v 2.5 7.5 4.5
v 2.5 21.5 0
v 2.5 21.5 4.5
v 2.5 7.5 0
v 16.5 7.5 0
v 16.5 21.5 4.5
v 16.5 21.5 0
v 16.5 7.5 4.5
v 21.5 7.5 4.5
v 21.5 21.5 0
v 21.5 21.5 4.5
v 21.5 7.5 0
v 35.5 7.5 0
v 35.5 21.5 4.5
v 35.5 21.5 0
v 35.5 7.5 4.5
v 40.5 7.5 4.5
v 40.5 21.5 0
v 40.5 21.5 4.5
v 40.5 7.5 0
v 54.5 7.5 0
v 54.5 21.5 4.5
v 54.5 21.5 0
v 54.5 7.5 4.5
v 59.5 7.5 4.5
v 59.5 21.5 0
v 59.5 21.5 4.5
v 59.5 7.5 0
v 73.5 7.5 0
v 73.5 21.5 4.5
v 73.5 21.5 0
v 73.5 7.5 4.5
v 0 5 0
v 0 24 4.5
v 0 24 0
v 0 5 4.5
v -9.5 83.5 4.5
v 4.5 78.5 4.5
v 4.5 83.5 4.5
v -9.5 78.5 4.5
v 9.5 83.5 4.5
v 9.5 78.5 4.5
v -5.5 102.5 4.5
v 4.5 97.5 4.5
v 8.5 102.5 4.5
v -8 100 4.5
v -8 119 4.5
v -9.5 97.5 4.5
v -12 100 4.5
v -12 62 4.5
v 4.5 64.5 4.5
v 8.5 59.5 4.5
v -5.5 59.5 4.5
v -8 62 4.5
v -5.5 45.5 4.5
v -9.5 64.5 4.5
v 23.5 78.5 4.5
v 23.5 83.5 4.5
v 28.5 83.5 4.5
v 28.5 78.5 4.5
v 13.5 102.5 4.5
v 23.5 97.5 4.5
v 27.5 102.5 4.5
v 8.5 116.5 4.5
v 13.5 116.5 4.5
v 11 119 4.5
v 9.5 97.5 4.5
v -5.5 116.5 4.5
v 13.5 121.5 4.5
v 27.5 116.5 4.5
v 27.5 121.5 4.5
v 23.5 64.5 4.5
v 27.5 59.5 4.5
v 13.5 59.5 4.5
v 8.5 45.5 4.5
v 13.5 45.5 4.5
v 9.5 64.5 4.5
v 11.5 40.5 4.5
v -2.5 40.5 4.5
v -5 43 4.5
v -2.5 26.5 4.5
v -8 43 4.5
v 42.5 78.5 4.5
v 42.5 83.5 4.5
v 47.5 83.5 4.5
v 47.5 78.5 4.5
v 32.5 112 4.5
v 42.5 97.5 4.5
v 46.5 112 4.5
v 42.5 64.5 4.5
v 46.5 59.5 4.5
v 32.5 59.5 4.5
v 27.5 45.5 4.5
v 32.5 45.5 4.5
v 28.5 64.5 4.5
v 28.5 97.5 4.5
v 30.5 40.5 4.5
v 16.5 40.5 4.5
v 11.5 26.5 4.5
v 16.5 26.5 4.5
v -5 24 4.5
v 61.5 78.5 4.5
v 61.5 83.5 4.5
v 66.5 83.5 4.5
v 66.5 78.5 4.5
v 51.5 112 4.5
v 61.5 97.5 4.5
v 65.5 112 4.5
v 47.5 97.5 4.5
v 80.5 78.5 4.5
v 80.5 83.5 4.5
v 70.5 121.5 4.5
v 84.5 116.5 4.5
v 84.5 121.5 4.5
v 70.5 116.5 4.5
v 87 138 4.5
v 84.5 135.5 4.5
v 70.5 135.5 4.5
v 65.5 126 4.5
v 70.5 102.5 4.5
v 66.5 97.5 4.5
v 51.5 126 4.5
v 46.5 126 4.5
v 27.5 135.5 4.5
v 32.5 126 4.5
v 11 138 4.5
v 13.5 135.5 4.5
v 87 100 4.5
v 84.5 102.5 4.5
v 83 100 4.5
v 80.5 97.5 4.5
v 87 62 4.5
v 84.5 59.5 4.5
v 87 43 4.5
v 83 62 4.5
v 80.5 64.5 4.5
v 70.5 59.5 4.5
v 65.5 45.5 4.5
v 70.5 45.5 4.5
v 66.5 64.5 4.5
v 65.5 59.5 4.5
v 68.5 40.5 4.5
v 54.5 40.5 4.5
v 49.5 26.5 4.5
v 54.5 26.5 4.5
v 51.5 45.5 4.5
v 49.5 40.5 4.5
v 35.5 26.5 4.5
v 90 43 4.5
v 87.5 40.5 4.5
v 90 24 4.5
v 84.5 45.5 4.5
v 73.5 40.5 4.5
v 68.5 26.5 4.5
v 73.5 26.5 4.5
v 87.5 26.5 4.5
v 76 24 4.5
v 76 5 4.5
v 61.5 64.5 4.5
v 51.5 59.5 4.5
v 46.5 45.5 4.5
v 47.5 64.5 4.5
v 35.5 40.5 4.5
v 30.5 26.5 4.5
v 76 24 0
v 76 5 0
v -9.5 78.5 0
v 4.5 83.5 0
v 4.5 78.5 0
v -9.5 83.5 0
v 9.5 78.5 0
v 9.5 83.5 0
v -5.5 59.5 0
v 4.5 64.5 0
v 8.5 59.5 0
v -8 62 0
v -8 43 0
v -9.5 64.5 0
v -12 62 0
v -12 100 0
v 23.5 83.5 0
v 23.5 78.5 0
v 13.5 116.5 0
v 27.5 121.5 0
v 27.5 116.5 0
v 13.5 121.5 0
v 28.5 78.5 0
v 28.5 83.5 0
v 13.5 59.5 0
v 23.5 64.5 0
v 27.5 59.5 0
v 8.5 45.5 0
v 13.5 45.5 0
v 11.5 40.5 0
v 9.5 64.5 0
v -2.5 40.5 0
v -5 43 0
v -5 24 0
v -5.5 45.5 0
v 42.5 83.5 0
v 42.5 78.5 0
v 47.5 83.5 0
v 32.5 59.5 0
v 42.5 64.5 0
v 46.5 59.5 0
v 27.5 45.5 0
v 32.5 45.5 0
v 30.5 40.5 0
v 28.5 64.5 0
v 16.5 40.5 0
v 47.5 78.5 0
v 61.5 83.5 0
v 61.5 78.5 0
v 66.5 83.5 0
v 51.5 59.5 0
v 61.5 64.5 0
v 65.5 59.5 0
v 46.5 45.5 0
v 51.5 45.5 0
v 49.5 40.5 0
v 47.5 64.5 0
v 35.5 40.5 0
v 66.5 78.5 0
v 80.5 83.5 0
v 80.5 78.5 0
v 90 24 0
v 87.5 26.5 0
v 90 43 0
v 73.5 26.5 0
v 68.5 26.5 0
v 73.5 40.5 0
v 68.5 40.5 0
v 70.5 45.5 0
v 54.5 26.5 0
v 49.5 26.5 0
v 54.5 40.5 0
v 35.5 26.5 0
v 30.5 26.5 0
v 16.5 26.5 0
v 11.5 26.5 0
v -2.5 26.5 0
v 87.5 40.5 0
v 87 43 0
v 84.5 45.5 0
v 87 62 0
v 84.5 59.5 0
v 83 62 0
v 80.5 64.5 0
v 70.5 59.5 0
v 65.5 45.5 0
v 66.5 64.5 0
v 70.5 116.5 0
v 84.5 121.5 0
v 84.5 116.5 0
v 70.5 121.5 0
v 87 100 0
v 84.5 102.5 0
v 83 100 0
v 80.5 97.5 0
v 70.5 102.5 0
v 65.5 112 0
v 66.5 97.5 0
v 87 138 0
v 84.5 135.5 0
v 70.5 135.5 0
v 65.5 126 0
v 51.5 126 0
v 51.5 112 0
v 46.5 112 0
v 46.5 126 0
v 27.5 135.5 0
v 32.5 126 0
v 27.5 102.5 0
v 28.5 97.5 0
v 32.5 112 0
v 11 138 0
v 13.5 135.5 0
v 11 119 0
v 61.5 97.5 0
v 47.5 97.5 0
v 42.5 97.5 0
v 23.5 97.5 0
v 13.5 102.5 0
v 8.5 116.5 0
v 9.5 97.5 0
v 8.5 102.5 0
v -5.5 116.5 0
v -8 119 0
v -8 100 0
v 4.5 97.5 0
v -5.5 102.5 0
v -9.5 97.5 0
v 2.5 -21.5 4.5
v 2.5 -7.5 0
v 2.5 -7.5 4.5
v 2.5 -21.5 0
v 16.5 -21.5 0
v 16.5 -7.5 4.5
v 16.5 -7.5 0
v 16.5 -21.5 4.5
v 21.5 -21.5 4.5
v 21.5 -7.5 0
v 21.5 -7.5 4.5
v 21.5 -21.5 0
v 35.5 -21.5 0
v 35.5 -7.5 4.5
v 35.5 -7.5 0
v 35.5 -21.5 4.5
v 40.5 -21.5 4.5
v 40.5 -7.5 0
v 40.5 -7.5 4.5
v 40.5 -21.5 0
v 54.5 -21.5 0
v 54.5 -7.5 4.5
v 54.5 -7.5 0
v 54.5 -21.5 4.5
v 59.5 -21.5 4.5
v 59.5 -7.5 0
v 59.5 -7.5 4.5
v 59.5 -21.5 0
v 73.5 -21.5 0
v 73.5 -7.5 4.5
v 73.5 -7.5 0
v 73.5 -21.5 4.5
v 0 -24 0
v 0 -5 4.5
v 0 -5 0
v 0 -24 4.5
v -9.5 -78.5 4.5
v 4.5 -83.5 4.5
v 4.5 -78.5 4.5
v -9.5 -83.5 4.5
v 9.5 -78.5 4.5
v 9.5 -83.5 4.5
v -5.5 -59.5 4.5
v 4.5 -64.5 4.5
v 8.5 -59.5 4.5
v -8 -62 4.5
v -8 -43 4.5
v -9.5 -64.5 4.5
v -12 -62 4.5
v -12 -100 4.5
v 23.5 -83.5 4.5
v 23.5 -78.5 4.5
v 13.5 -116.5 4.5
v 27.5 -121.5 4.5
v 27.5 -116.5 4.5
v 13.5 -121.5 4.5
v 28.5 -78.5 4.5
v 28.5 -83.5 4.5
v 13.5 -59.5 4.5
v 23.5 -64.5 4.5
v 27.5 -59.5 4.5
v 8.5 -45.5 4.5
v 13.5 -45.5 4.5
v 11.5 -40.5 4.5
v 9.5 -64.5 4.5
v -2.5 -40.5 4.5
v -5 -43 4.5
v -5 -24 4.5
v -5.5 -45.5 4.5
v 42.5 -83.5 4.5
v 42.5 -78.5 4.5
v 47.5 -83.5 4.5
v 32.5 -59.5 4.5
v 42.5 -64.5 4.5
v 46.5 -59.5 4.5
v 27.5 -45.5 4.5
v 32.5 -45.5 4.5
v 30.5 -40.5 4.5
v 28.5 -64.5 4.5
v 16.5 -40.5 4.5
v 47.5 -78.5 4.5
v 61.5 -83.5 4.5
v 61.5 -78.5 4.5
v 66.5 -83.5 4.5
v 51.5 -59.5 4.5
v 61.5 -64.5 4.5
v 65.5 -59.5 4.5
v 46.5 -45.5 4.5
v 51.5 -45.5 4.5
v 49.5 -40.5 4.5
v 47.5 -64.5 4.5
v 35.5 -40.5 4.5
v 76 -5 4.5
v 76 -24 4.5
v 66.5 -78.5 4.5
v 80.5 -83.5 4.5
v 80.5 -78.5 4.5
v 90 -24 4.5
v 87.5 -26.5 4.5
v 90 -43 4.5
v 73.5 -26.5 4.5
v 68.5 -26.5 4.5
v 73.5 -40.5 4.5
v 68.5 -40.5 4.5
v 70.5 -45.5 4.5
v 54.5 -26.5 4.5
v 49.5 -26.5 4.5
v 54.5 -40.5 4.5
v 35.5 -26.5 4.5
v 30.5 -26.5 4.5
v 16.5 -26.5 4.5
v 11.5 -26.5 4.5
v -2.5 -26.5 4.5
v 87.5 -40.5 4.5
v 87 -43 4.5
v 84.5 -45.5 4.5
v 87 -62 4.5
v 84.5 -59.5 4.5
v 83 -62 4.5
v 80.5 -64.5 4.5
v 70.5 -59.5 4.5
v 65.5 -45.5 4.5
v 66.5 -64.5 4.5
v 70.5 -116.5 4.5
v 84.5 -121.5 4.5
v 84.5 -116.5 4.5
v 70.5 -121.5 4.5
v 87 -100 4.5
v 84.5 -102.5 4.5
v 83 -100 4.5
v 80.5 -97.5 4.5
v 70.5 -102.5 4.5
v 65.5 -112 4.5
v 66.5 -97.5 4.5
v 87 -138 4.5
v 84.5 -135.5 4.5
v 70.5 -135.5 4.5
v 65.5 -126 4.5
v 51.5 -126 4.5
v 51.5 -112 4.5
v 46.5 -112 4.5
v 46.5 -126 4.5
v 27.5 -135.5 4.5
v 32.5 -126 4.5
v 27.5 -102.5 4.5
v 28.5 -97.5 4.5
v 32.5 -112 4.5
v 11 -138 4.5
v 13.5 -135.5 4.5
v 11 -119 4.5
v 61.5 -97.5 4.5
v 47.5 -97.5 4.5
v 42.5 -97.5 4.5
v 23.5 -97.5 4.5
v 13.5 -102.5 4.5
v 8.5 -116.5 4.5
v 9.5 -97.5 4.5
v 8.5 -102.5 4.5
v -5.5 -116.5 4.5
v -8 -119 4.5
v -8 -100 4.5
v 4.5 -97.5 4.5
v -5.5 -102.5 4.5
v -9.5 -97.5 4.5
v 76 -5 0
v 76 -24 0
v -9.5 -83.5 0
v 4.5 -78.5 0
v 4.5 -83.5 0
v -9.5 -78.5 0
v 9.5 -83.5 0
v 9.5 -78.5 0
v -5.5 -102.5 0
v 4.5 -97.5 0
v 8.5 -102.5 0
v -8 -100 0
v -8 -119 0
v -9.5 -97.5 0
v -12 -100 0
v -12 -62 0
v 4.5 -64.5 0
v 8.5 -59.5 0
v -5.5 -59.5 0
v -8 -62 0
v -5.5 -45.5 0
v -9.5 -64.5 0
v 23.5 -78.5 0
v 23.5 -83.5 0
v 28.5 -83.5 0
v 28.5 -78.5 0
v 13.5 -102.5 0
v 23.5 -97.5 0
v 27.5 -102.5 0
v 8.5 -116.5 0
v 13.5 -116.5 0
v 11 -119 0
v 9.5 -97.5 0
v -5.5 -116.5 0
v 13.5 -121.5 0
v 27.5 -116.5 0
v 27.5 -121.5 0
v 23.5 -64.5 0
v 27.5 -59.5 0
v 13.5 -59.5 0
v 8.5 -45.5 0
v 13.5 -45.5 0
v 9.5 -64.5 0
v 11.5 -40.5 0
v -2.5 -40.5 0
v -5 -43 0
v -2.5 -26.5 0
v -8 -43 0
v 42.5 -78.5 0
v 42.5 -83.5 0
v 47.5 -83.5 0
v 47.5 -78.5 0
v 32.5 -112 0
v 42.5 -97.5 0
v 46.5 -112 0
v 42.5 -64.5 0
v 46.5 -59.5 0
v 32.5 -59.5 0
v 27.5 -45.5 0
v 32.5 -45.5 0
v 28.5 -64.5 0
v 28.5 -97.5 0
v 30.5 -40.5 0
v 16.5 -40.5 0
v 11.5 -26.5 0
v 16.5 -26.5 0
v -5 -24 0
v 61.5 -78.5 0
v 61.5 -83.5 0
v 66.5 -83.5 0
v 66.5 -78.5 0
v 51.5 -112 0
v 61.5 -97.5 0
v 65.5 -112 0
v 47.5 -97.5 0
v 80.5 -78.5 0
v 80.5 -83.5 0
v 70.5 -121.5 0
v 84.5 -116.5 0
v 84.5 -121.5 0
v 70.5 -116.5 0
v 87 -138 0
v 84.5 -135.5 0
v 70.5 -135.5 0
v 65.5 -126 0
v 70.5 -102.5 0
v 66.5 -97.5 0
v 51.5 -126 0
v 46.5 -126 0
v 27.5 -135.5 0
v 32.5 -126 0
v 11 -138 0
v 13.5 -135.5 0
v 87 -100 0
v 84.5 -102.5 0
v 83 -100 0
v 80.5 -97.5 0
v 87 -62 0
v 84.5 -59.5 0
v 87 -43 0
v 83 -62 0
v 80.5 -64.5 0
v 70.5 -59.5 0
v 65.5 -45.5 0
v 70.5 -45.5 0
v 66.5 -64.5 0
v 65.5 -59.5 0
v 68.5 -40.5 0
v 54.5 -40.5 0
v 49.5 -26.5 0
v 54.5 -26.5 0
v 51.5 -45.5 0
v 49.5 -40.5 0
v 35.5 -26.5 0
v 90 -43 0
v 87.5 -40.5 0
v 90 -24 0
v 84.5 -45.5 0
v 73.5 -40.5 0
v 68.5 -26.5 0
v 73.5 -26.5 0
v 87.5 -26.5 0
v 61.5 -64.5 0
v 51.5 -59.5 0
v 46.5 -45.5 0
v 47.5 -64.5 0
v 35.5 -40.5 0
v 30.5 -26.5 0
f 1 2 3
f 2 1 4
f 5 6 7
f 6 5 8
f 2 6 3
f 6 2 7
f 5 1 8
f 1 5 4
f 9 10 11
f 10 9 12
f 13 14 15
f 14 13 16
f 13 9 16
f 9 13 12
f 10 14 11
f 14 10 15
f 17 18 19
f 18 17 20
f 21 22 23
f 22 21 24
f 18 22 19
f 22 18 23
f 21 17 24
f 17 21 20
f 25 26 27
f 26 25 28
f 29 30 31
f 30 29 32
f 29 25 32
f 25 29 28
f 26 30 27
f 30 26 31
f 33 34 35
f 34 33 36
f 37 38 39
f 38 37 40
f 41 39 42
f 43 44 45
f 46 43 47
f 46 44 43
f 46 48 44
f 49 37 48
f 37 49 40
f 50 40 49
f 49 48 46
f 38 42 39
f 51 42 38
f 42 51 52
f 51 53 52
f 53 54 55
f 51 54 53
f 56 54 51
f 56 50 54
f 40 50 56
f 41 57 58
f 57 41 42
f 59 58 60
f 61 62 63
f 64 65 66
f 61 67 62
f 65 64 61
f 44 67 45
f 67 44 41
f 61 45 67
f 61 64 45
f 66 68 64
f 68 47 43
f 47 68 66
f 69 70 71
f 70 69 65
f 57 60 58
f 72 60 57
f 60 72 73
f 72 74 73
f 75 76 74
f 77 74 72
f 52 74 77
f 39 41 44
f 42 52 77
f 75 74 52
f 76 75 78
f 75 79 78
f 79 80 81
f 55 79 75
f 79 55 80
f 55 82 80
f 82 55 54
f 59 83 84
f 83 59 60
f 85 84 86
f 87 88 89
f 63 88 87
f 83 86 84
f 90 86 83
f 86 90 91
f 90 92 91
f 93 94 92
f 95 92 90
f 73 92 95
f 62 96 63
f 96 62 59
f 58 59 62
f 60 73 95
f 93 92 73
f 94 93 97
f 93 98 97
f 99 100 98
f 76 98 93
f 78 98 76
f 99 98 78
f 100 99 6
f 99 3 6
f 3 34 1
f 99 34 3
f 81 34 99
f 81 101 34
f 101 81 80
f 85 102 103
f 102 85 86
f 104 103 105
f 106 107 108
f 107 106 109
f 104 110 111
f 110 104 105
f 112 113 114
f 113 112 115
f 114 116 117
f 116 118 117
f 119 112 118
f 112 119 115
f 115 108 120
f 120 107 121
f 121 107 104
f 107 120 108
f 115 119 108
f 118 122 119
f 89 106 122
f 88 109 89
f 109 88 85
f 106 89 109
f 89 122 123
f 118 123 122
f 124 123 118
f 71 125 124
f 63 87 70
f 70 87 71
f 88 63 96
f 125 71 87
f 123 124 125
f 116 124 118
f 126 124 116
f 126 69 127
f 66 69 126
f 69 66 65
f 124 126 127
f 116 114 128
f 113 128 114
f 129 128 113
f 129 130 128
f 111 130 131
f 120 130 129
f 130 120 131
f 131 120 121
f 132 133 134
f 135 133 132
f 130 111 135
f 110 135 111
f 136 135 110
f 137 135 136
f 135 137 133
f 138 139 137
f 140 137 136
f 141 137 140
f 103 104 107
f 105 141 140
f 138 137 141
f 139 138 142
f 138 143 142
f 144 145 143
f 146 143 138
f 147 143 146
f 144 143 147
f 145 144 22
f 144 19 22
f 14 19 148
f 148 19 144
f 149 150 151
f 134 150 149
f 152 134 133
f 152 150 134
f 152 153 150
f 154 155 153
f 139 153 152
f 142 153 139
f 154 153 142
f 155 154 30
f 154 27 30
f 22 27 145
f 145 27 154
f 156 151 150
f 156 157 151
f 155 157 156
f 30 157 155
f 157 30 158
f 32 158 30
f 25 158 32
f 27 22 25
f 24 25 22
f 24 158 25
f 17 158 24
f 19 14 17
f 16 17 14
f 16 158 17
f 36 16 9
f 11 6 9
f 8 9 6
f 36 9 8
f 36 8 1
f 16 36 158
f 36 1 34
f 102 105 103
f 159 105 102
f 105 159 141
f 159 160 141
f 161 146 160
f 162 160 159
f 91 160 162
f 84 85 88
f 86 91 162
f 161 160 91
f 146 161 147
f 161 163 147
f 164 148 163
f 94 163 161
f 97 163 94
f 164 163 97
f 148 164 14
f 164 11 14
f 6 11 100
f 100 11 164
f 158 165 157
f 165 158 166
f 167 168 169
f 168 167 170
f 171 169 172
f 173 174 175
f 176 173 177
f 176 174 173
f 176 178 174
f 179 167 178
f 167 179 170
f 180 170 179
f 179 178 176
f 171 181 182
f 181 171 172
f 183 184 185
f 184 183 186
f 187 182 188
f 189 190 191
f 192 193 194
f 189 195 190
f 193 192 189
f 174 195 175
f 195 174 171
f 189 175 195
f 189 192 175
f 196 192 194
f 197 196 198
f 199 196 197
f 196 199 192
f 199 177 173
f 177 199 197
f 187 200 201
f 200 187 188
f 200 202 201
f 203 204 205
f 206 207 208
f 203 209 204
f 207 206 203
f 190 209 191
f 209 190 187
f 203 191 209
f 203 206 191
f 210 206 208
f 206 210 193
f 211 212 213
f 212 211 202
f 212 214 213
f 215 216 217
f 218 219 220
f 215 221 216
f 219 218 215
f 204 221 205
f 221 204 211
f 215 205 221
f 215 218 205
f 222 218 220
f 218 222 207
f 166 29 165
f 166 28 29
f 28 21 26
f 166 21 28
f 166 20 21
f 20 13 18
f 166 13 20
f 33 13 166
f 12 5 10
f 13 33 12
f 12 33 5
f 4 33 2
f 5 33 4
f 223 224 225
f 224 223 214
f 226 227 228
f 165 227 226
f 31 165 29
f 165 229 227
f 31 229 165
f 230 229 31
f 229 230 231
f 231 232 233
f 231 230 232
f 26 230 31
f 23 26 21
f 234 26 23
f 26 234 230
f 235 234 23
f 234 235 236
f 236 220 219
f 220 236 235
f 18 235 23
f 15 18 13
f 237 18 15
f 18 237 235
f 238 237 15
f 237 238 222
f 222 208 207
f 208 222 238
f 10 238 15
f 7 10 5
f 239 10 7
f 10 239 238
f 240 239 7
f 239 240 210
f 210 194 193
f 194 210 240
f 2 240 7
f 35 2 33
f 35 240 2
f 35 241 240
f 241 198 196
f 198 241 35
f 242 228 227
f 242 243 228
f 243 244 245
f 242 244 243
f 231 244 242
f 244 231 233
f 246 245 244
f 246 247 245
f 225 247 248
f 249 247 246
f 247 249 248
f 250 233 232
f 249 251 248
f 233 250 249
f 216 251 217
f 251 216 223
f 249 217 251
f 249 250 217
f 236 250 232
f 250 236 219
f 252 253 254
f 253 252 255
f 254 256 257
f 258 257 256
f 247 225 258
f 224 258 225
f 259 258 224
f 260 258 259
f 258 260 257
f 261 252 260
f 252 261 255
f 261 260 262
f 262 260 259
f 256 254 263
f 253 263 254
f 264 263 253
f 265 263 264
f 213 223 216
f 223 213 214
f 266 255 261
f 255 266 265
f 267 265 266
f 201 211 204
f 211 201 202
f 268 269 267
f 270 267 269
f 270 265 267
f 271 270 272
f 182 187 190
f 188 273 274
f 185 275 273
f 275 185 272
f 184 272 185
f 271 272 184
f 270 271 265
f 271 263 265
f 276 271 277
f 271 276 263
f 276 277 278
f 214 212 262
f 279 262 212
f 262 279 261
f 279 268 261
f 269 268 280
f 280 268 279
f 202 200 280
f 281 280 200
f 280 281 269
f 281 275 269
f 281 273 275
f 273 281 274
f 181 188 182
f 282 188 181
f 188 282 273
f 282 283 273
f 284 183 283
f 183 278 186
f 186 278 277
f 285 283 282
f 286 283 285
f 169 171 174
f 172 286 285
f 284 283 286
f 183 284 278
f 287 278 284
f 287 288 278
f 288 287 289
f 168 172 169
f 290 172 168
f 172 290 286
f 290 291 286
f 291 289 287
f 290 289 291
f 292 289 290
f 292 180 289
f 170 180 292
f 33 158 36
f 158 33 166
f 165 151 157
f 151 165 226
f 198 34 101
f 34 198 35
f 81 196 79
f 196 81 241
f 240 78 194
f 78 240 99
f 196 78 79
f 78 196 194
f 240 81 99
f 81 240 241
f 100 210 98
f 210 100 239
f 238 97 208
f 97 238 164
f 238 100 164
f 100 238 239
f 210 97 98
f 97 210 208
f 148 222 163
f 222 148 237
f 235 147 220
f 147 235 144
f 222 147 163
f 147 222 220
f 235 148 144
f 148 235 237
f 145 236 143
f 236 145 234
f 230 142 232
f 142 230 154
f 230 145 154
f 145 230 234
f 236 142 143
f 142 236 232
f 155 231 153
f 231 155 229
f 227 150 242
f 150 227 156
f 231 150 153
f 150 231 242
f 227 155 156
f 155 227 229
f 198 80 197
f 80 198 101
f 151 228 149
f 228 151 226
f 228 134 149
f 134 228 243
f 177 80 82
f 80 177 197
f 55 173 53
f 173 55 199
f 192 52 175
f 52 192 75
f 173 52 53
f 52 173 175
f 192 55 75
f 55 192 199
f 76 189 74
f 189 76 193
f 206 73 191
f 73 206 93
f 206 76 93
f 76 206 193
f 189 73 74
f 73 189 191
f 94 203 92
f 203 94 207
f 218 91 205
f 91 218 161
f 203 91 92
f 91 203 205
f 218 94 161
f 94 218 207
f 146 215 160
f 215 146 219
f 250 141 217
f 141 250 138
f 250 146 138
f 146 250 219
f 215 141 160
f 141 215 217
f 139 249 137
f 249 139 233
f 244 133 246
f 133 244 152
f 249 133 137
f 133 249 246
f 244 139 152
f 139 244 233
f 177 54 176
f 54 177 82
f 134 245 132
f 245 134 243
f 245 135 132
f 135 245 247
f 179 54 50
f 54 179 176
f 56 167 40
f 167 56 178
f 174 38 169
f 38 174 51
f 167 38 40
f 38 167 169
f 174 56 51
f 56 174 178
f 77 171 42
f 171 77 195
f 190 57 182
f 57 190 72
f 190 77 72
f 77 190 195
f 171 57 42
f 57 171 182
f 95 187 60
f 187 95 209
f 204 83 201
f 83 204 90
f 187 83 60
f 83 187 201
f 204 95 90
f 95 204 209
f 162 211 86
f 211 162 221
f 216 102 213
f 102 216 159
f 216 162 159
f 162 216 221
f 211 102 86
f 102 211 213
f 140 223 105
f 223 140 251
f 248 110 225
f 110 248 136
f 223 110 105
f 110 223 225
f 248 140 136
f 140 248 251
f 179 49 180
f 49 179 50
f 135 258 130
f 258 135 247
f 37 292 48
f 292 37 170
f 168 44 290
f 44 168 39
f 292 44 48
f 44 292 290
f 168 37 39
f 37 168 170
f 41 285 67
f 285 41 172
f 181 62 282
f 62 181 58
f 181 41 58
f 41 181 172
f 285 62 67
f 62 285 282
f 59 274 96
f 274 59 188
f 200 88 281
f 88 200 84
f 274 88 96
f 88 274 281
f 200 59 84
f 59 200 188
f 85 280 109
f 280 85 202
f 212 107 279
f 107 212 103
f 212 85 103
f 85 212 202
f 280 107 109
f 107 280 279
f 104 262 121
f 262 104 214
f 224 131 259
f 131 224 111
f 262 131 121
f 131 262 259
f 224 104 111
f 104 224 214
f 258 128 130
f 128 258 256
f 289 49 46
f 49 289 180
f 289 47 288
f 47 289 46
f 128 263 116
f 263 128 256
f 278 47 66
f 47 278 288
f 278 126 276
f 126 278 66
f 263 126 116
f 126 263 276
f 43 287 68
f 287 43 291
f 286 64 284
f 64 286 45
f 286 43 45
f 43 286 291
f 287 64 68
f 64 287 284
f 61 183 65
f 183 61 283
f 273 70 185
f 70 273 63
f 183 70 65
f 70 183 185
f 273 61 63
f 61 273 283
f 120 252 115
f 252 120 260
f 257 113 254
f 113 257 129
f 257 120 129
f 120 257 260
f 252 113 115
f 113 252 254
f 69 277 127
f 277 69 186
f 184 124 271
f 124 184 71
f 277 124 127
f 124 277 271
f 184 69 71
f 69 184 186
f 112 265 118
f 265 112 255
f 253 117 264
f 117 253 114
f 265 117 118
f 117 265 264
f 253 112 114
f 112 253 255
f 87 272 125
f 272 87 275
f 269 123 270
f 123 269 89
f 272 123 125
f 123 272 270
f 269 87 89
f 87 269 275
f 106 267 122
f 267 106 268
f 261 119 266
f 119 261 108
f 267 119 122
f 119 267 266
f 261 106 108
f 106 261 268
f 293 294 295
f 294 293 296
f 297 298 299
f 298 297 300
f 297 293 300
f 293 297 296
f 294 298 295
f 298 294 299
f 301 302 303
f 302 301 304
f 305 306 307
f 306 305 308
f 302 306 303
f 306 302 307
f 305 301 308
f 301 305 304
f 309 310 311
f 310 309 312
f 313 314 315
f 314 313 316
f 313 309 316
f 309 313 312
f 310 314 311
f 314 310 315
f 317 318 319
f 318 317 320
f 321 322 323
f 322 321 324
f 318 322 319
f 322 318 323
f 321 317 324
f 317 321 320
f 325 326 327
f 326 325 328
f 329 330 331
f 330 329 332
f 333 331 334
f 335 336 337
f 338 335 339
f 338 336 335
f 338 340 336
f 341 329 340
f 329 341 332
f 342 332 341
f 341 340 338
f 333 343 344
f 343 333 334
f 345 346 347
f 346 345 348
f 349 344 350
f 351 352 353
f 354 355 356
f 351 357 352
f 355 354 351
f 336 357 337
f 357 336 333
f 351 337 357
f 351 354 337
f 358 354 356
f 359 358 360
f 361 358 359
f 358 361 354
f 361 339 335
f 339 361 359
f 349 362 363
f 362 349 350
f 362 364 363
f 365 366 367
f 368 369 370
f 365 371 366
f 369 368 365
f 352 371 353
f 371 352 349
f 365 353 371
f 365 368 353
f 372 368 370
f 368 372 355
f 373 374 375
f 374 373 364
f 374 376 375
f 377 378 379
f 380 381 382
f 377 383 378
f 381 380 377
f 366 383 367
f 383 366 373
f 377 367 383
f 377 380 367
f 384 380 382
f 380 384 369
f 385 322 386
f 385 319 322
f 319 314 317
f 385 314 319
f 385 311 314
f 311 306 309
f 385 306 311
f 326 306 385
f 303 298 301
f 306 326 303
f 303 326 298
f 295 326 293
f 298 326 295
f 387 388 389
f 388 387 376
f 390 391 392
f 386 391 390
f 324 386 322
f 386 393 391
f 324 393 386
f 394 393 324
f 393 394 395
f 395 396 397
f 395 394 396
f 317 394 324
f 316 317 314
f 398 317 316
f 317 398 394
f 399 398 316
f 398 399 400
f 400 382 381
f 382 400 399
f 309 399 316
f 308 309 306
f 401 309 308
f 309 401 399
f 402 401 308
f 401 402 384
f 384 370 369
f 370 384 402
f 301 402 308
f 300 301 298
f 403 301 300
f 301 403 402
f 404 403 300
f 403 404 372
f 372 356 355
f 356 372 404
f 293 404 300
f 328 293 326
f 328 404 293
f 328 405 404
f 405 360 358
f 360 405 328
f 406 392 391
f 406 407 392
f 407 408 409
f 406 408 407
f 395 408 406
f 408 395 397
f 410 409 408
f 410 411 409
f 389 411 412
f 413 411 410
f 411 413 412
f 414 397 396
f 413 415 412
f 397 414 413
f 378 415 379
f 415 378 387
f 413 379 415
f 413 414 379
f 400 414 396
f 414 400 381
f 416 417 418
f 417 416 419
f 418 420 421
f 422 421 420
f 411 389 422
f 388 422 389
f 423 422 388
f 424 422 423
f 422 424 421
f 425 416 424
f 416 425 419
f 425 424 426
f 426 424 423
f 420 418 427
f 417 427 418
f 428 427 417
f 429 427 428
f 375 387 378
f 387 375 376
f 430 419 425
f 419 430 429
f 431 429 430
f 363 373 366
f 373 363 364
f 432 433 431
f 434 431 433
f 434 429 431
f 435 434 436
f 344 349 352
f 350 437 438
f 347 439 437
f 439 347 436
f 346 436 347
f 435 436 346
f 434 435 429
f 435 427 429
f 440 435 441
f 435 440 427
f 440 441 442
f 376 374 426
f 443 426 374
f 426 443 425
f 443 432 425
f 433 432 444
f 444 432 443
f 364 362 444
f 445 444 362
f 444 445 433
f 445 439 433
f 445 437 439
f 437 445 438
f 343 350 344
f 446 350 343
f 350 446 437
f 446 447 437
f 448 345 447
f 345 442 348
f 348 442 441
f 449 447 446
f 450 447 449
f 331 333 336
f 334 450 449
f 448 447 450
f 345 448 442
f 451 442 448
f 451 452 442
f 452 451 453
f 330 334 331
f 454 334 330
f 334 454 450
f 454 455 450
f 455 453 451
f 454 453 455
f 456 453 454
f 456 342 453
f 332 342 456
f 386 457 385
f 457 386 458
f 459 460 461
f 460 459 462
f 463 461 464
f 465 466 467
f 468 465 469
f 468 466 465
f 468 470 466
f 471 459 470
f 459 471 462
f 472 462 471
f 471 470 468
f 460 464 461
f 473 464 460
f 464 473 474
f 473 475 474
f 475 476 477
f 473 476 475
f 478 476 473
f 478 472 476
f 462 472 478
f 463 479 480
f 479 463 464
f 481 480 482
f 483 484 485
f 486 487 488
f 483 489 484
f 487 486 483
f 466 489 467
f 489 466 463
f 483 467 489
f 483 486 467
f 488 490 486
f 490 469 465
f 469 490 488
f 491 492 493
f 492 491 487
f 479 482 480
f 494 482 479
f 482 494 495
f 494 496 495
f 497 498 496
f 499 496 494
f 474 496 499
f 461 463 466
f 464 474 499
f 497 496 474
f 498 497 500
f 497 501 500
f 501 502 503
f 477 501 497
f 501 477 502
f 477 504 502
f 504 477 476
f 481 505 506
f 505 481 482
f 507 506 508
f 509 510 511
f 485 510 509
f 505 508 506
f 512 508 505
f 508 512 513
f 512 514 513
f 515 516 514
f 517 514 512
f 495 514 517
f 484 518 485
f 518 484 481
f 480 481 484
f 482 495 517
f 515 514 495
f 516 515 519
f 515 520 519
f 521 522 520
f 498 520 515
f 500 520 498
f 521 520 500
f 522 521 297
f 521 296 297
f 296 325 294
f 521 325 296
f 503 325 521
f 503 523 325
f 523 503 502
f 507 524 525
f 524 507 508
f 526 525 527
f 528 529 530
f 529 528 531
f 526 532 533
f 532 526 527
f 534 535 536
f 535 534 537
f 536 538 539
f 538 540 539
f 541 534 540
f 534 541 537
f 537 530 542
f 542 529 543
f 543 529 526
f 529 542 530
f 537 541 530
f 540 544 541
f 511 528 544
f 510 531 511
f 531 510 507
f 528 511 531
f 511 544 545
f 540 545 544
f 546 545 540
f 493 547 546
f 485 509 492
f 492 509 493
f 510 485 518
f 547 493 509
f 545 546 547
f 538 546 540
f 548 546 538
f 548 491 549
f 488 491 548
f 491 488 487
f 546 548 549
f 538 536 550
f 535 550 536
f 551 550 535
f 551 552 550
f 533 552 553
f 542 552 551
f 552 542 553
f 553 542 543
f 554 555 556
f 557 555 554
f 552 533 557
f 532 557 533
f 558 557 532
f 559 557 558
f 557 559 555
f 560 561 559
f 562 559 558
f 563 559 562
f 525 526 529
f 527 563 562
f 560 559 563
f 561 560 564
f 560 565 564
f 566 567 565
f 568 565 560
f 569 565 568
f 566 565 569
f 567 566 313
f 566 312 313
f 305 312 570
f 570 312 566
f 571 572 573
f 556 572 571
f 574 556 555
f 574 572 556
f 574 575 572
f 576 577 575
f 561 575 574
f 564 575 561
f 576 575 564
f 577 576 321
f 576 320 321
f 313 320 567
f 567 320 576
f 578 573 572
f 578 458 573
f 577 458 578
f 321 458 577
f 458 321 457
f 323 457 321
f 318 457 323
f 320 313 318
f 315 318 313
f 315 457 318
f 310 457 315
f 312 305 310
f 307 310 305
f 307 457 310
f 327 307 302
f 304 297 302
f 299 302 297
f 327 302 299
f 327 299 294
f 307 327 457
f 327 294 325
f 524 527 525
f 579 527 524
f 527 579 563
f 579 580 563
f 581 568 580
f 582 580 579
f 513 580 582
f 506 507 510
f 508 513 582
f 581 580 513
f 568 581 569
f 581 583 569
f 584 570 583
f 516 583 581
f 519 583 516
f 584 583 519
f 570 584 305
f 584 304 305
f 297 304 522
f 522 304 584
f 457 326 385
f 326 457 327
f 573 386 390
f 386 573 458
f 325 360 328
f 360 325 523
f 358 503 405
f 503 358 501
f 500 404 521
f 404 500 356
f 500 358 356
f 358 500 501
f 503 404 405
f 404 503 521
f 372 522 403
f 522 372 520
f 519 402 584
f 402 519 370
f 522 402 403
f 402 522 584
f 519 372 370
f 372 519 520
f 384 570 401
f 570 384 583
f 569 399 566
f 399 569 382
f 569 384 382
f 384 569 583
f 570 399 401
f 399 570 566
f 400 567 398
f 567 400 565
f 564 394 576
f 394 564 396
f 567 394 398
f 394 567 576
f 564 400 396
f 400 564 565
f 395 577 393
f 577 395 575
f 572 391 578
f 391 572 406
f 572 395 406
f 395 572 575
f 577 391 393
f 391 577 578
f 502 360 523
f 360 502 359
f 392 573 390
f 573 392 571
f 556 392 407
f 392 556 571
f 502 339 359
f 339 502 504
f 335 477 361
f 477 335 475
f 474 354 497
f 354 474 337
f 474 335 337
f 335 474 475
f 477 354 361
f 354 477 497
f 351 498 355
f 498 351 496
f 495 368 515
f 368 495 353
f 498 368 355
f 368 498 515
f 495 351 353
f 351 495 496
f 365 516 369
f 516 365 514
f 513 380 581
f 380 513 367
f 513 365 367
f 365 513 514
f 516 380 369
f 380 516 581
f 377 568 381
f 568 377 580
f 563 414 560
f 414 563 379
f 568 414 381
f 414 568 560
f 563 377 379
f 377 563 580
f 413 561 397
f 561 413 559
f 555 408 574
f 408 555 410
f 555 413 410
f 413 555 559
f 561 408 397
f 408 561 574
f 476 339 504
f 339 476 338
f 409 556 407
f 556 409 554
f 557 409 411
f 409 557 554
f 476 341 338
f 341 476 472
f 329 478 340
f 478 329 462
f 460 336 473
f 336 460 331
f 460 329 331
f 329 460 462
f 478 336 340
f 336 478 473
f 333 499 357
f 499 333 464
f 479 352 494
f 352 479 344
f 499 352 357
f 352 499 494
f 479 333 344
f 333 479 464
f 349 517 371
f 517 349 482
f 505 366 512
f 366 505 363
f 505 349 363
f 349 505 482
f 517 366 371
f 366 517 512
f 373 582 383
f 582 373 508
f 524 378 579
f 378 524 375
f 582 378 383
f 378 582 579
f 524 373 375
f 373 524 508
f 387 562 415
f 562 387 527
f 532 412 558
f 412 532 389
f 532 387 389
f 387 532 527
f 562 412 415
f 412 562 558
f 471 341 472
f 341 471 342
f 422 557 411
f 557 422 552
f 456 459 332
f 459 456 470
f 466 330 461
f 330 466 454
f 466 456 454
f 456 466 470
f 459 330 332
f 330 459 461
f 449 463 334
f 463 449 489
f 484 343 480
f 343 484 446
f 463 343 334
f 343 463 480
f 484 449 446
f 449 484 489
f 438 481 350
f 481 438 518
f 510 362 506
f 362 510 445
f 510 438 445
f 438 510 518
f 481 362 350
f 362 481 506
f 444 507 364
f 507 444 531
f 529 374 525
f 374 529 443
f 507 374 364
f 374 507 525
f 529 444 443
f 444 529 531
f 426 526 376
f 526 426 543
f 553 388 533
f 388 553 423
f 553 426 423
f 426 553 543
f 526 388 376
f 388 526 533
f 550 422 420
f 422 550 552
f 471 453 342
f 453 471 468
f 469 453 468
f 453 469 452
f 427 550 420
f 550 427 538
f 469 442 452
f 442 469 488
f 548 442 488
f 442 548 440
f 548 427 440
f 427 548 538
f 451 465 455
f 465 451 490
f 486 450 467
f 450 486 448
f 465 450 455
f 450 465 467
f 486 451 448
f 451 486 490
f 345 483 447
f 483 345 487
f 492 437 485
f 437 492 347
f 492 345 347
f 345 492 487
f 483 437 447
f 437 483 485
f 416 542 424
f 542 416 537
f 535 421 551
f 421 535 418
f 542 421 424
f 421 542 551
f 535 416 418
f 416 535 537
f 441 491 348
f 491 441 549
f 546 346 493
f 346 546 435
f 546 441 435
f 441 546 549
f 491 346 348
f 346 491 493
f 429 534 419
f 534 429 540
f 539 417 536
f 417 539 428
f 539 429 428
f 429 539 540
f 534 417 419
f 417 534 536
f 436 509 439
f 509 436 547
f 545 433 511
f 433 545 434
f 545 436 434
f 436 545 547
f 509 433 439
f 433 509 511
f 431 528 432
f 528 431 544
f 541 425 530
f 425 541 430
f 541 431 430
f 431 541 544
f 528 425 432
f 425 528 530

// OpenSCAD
$fa = 1;
$fs = 0.4;

// can be 0 for final rendering
DRAW_TOLERANCE = 0.05;

// number of columns in the gridlike central region
n_standard_columns = 5;
// height expressed as number of switches
column_heights = [4, 5, 5, 5, 5];
// shim is top offset (mm), + is lower, - is higher
column_shims = [0, -5, -8, -12, -12];

// approx. kailh dimensions (mm)
switch_dims= [
    14,
    14, 
    4.6
];
// extension of pin/bump from bottom of switch body (mm)
switch_pin_z = 4;

// spacing between two keys is 2 * key_margin
key_margin = [2.5, 2.5, 0];  // 2 for cap, 0.5 for gap
// bracket fits a key with margin on both sides of it
bracket_dims = [
    switch_dims.x + 2 * key_margin.x,
    switch_dims.y + 2 * key_margin.y,
    switch_dims.z + 2 * key_margin.z
];

module switch() {
    // more accurately, a switch bounding box w/o pins
    cube(switch_dims);
}


module standard_column(position, n_switches) {
    column_dims = [
        bracket_dims.x * n_switches,
        bracket_dims.y,
        switch_dims.z - 2 * DRAW_TOLERANCE + key_margin.z
    ];
    translate(position) {
        difference() {
            cube(column_dims);
            // subtract room for the switches
            for (i = [0:n_switches - 1]) {
                translate([
                    (
                        i * bracket_dims.x 
                        + key_margin.x
                    ),
                    key_margin.y,
                    -DRAW_TOLERANCE
                ]) {
                    switch();
                }
            }
        }
    }
}


module qwer_section() {
    for (i = [0:n_standard_columns - 1]) {
        standard_column(
            [
                column_shims[i],
                i * bracket_dims.y,
                0
            ],
            column_heights[i]
        );
    }
}


module outer_section() {
    /* the outer section has a complicated mixture of switch
        positions, so this is a bit ugly / hard to cleanly
        parameterize... maybe one option is to have an array
        of key widths for each col and an "empty" marker to 
        accommodate the adjoining spots like...
            inner = [1U, 1U, 2U, 2U, 1U], 
            outer = [1U, empty, empty, 1U]
        ? not really sure what the best practice is, and ^ that
        would still require setting the shims to make the rows
        align between those cols
    */ 
    inner_shim = -8;
    inner_height = 5; 
    // inner_shim and outer_shim need to align the rows
    // TODO how to explicitly constrain them to do so?
    outer_shim = 11;
    outer_height = 4;
    difference() {
        union () {
            // inner part
            translate([
                inner_shim,
                n_standard_columns * bracket_dims.y,
                0
            ]) {
                cube([
                    bracket_dims.x * inner_height,
                    bracket_dims.y,
                    (
                        switch_dims.z 
                        - 2 * DRAW_TOLERANCE 
                        + key_margin.z
                    )
                ]);
            }
            // outer part
            translate([
                outer_shim,
                (n_standard_columns + 1) * bracket_dims.y,
                0
            ]) {
                cube([
                    bracket_dims.x * outer_height,
                    bracket_dims.y,
                    (
                        switch_dims.z 
                        - 2 * DRAW_TOLERANCE 
                        + key_margin.z
                    )
                ]);
            }
        }
        union () {
            // single-width inner keys
            for (i=[0:inner_height - 1]) {
                translate([
                    (
                        inner_shim 
                        + key_margin.x 
                        + bracket_dims.x * i
                    ),
                    (
                        n_standard_columns
                        * bracket_dims.y 
                        + key_margin.y
                    ),
                    -DRAW_TOLERANCE
                ]) {
                    // FIXME scad "in" check?
                    if (i != 2 && i != 3) switch();
                }
            }
            // single-width outer keys
            for (i=[0:outer_height - 1]) {
                translate([
                    (
                        outer_shim 
                        + key_margin.x 
                        + bracket_dims.x * i
                    ),
                    (
                        (n_standard_columns + 1)
                        * bracket_dims.y 
                        + key_margin.y
                    ),
                    -DRAW_TOLERANCE
                ]) {
                    // FIXME scad "in" check?
                    if (i != 1 && i != 2) switch();
                }
            }
            // double-width keys
            for (i=[1:2]) {
                translate([
                   /* see above: outer and inner need to 
                        combine to give you an aligned row
                    */
                    (
                        outer_shim 
                        + key_margin.x 
                        + bracket_dims.x * i
                    ),
                    // FIXME ugly
                    (
                        (n_standard_columns + 0.5)
                        * bracket_dims.y
                        + key_margin.y 
                    ),
                    -DRAW_TOLERANCE
                ]) {
                    switch();
                }
            }
        }
    }
}

/* probably cleaner to pass thru params here instead of using
*    so many globals, altho not sure how that works w/ the
*    customizer?
*/
module half() {
    qwer_section();
    outer_section();
}


module keyboard(rot=false) {
    // i kinda picked the wrong orientation :(
    rotate([0, 0, rot ? -90 : 0]) {
        translate([0, 5, 0]) { 
            half();
        }
        translate([0, -5, 0]) {
            mirror([0, 1, 0]) {
                half();
            }
        }
    }
}

keyboard();
